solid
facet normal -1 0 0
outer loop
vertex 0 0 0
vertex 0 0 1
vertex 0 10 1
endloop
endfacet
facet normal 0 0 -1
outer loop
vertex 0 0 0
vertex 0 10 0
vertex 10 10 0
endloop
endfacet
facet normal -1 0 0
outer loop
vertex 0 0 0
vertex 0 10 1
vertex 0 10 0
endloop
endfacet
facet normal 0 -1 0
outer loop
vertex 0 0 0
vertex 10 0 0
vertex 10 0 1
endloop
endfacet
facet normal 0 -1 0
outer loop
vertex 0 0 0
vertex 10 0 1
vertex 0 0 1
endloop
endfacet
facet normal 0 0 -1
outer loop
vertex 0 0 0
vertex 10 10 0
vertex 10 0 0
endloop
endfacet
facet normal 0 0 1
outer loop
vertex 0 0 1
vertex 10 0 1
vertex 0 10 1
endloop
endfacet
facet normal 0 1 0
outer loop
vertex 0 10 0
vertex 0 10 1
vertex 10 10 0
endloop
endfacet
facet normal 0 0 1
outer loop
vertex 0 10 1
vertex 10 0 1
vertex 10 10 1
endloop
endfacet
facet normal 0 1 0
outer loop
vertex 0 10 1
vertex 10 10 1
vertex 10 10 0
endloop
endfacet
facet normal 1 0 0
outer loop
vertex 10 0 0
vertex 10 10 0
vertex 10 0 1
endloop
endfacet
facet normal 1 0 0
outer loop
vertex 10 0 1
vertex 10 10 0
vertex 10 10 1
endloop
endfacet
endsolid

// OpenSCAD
/* Warning, this is a very basic generator with a lot of approximation 
input data : [TQFP, VGX, 10x10x1.0mm, 64, , E, C04-00085E]
generated by com.zoubworld.electronics.cad.model3d.Basic
Date : Sun Feb 15 10:50:48 CET 2026
*/

//body
color("black")
translate([0,0,0])
cube([10.0,10.0,1.0], center=false);
